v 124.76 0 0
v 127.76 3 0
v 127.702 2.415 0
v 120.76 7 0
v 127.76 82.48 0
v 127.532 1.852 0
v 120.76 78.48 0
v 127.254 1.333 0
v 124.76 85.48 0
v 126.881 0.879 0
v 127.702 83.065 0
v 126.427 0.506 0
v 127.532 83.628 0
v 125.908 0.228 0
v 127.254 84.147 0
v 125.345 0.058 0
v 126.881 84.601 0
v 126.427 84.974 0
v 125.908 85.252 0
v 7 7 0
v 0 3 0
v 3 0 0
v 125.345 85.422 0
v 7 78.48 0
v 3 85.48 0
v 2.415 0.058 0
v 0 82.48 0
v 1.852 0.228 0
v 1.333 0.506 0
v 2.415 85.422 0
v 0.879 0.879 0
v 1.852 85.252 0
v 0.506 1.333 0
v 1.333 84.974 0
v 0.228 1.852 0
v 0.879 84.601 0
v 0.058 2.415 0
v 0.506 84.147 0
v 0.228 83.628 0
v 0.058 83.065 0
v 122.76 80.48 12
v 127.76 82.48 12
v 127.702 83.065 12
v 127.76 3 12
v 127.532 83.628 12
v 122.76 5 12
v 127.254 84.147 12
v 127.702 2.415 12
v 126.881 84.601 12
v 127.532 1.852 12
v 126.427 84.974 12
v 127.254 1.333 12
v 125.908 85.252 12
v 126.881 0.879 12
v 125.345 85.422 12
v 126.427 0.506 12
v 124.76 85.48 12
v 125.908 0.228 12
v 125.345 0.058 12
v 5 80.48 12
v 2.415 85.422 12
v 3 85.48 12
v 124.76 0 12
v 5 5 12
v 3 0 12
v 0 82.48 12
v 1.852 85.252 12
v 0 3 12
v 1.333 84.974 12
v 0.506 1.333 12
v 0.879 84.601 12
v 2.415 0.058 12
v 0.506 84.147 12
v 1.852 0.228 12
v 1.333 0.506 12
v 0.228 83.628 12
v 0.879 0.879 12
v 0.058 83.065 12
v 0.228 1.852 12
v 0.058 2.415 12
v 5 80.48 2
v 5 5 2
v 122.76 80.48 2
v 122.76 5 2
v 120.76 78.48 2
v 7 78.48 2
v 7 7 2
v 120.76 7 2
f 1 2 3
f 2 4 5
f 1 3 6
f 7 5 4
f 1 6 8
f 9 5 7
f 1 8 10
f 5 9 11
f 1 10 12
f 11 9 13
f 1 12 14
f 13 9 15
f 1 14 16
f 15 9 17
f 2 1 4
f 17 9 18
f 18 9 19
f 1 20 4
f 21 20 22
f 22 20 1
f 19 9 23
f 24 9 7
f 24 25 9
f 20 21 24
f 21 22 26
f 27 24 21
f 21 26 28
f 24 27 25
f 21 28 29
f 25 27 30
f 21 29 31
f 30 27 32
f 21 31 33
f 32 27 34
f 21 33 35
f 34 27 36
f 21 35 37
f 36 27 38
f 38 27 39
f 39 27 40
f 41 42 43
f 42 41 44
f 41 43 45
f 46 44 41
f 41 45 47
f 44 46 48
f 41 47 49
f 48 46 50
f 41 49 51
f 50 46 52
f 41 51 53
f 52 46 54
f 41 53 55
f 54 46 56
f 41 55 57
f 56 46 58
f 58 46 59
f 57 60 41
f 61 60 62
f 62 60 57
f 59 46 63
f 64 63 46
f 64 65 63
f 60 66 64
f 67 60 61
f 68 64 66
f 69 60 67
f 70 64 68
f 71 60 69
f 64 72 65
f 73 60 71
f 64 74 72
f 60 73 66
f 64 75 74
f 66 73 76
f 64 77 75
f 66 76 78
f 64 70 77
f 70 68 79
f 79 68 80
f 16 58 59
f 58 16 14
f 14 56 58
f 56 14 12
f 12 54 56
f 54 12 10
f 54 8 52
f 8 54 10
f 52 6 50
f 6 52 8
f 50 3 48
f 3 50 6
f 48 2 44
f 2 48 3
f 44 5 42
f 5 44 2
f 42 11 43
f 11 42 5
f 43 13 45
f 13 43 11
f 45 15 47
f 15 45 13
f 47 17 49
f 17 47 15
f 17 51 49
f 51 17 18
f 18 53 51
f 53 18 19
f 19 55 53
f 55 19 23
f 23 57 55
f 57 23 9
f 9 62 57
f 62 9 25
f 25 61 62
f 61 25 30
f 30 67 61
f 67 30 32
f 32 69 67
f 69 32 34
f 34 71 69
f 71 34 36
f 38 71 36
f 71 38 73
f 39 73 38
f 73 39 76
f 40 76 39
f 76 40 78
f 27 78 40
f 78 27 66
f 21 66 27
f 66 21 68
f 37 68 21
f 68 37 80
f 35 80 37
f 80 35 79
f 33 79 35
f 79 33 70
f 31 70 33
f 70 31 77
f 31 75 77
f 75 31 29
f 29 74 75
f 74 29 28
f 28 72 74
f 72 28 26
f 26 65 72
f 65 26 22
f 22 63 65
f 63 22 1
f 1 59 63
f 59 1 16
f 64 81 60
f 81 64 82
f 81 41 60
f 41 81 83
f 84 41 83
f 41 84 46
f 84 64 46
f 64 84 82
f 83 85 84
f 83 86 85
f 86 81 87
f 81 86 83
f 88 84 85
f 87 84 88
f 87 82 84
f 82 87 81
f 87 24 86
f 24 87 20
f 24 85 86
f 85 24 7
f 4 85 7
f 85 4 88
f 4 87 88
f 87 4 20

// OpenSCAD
// file: labware.scad
// BaeBugs parametric labware library (labware twin), v0.1
// All parts are built as 2D profiles extruded in Z, so remixes render fast.
// Units: mm. SBS footprint per ANSI/SLAS 1-2004: 127.76 x 85.48.
// License: CERN-OHL-W-2.0 unless a part file says otherwise.

SBS_X = 127.76;
SBS_Y = 85.48;
$fn = 32;

// Rounded rectangle profile anchored at the origin.
module rrect(x, y, r = 3) {
    translate([r, r]) offset(r = r) square([x - 2 * r, y - 2 * r]);
}

// Grid of round holes. A1 is the back-left well, matching Opentrons/SBS naming,
// so row 0 sits at y = footprint_y - a1_y.
module hole_grid(rows, cols, pitch, hole_d, a1_x, a1_y, footprint_y) {
    for (r = [0 : rows - 1], c = [0 : cols - 1])
        translate([a1_x + c * pitch, footprint_y - a1_y - r * pitch]) circle(d = hole_d);
}

// Tube or tip rack plate: solid top deck with holes, plus a skirt so it sits in a deck slot.
module sbs_plate(rows = 8, cols = 12, pitch = 9, hole_d = 5.8, height = 20,
                 a1_x = 14.38, a1_y = 11.24, footprint_x = SBS_X, footprint_y = SBS_Y,
                 deck = 3, skirt = 2) {
    // top deck
    translate([0, 0, height - deck]) linear_extrude(deck)
        difference() {
            rrect(footprint_x, footprint_y);
            hole_grid(rows, cols, pitch, hole_d, a1_x, a1_y, footprint_y);
        }
    // skirt wall
    linear_extrude(height - deck)
        difference() {
            rrect(footprint_x, footprint_y);
            translate([skirt, skirt]) rrect(footprint_x - 2 * skirt, footprint_y - 2 * skirt, 2);
        }
    // bottom locator ring (keeps tubes from sliding, 1.5 mm floor with smaller holes)
    linear_extrude(1.5)
        difference() {
            translate([skirt, skirt]) rrect(footprint_x - 2 * skirt, footprint_y - 2 * skirt, 2);
            hole_grid(rows, cols, pitch, hole_d * 0.6, a1_x, a1_y, footprint_y);
        }
}

// Flat grid insert (e.g. 10x10 cryo box insert).
module grid_insert(rows = 10, cols = 10, pitch = 13, hole_d = 12.8, height = 12,
                   a1_x = 8, a1_y = 8, footprint_x = 133, footprint_y = 133) {
    linear_extrude(height)
        difference() {
            rrect(footprint_x, footprint_y, 2);
            hole_grid(rows, cols, pitch, hole_d, a1_x, a1_y, footprint_y);
        }
}

// Open lipped frame: the "folder" frame. Inserts rest on the inner lip.
module frame(footprint_x = SBS_X, footprint_y = SBS_Y, height = 12, wall = 5, lip = 2, lip_z = 2) {
    linear_extrude(height)
        difference() {
            rrect(footprint_x, footprint_y);
            translate([wall, wall]) square([footprint_x - 2 * wall, footprint_y - 2 * wall]);
        }
    linear_extrude(lip_z)
        difference() {
            translate([wall - 0.01, wall - 0.01]) square([footprint_x - 2 * wall + 0.02, footprint_y - 2 * wall + 0.02]);
            translate([wall + lip, wall + lip]) square([footprint_x - 2 * (wall + lip), footprint_y - 2 * (wall + lip)]);
        }
}

// Frame split into rows x cols windows, each with a perforated floor (printed mesh).
module grid_frame(footprint_x = SBS_X, footprint_y = SBS_Y, height = 8, wall = 4, rows = 2, cols = 3,
                  rib = 3, floor = 1.2, mesh_hole = 2, mesh_pitch = 3) {
    ix = footprint_x - 2 * wall;
    iy = footprint_y - 2 * wall;
    cw = (ix - (cols - 1) * rib) / cols;
    ch = (iy - (rows - 1) * rib) / rows;
    // walls and ribs
    linear_extrude(height)
        difference() {
            rrect(footprint_x, footprint_y);
            for (r = [0 : rows - 1], c = [0 : cols - 1])
                translate([wall + c * (cw + rib), wall + r * (ch + rib)]) square([cw, ch]);
        }
    // perforated floor (square holes print cleanly without supports)
    linear_extrude(floor)
        difference() {
            translate([wall, wall]) square([ix, iy]);
            for (r = [0 : rows - 1], c = [0 : cols - 1])
                translate([wall + c * (cw + rib), wall + r * (ch + rib)])
                    for (i = [0 : floor((cw - mesh_pitch) / mesh_pitch)], j = [0 : floor((ch - mesh_pitch) / mesh_pitch)])
                        translate([mesh_pitch * 0.75 + i * mesh_pitch, mesh_pitch * 0.75 + j * mesh_pitch])
                            square(mesh_hole, center = true);
        }
}

// Hexagonal lattice clipped to a rectangle with a solid rim.
module honeycomb(footprint_x = 117, footprint_y = 75, height = 6, cell = 14, wall = 1.6, rim = 2) {
    dx = cell;                 // across-flats pitch
    dy = cell * sqrt(3) / 2;   // row pitch
    linear_extrude(height)
        difference() {
            square([footprint_x, footprint_y]);
            intersection() {
                translate([rim, rim]) square([footprint_x - 2 * rim, footprint_y - 2 * rim]);
                for (j = [0 : ceil(footprint_y / dy)], i = [-1 : ceil(footprint_x / dx)])
                    translate([i * dx + (j % 2) * dx / 2, j * dy])
                        rotate(30) circle(d = (cell - wall) / cos(30), $fn = 6);
            }
        }
}
// main file
// SBS lipped frame ('folder')
// part id: print-frame-sbs  license: CERN-OHL-S-2.0
// derived from: obs-printed-frame-open
// Edit the parameters to remix. Catalog dimensions marked est. need calipers before a production run.
use <labware.scad>

frame(footprint_x = 127.76, footprint_y = 85.48, height = 12.0, wall = 5.0, lip = 2.0, lip_z = 2.0);
